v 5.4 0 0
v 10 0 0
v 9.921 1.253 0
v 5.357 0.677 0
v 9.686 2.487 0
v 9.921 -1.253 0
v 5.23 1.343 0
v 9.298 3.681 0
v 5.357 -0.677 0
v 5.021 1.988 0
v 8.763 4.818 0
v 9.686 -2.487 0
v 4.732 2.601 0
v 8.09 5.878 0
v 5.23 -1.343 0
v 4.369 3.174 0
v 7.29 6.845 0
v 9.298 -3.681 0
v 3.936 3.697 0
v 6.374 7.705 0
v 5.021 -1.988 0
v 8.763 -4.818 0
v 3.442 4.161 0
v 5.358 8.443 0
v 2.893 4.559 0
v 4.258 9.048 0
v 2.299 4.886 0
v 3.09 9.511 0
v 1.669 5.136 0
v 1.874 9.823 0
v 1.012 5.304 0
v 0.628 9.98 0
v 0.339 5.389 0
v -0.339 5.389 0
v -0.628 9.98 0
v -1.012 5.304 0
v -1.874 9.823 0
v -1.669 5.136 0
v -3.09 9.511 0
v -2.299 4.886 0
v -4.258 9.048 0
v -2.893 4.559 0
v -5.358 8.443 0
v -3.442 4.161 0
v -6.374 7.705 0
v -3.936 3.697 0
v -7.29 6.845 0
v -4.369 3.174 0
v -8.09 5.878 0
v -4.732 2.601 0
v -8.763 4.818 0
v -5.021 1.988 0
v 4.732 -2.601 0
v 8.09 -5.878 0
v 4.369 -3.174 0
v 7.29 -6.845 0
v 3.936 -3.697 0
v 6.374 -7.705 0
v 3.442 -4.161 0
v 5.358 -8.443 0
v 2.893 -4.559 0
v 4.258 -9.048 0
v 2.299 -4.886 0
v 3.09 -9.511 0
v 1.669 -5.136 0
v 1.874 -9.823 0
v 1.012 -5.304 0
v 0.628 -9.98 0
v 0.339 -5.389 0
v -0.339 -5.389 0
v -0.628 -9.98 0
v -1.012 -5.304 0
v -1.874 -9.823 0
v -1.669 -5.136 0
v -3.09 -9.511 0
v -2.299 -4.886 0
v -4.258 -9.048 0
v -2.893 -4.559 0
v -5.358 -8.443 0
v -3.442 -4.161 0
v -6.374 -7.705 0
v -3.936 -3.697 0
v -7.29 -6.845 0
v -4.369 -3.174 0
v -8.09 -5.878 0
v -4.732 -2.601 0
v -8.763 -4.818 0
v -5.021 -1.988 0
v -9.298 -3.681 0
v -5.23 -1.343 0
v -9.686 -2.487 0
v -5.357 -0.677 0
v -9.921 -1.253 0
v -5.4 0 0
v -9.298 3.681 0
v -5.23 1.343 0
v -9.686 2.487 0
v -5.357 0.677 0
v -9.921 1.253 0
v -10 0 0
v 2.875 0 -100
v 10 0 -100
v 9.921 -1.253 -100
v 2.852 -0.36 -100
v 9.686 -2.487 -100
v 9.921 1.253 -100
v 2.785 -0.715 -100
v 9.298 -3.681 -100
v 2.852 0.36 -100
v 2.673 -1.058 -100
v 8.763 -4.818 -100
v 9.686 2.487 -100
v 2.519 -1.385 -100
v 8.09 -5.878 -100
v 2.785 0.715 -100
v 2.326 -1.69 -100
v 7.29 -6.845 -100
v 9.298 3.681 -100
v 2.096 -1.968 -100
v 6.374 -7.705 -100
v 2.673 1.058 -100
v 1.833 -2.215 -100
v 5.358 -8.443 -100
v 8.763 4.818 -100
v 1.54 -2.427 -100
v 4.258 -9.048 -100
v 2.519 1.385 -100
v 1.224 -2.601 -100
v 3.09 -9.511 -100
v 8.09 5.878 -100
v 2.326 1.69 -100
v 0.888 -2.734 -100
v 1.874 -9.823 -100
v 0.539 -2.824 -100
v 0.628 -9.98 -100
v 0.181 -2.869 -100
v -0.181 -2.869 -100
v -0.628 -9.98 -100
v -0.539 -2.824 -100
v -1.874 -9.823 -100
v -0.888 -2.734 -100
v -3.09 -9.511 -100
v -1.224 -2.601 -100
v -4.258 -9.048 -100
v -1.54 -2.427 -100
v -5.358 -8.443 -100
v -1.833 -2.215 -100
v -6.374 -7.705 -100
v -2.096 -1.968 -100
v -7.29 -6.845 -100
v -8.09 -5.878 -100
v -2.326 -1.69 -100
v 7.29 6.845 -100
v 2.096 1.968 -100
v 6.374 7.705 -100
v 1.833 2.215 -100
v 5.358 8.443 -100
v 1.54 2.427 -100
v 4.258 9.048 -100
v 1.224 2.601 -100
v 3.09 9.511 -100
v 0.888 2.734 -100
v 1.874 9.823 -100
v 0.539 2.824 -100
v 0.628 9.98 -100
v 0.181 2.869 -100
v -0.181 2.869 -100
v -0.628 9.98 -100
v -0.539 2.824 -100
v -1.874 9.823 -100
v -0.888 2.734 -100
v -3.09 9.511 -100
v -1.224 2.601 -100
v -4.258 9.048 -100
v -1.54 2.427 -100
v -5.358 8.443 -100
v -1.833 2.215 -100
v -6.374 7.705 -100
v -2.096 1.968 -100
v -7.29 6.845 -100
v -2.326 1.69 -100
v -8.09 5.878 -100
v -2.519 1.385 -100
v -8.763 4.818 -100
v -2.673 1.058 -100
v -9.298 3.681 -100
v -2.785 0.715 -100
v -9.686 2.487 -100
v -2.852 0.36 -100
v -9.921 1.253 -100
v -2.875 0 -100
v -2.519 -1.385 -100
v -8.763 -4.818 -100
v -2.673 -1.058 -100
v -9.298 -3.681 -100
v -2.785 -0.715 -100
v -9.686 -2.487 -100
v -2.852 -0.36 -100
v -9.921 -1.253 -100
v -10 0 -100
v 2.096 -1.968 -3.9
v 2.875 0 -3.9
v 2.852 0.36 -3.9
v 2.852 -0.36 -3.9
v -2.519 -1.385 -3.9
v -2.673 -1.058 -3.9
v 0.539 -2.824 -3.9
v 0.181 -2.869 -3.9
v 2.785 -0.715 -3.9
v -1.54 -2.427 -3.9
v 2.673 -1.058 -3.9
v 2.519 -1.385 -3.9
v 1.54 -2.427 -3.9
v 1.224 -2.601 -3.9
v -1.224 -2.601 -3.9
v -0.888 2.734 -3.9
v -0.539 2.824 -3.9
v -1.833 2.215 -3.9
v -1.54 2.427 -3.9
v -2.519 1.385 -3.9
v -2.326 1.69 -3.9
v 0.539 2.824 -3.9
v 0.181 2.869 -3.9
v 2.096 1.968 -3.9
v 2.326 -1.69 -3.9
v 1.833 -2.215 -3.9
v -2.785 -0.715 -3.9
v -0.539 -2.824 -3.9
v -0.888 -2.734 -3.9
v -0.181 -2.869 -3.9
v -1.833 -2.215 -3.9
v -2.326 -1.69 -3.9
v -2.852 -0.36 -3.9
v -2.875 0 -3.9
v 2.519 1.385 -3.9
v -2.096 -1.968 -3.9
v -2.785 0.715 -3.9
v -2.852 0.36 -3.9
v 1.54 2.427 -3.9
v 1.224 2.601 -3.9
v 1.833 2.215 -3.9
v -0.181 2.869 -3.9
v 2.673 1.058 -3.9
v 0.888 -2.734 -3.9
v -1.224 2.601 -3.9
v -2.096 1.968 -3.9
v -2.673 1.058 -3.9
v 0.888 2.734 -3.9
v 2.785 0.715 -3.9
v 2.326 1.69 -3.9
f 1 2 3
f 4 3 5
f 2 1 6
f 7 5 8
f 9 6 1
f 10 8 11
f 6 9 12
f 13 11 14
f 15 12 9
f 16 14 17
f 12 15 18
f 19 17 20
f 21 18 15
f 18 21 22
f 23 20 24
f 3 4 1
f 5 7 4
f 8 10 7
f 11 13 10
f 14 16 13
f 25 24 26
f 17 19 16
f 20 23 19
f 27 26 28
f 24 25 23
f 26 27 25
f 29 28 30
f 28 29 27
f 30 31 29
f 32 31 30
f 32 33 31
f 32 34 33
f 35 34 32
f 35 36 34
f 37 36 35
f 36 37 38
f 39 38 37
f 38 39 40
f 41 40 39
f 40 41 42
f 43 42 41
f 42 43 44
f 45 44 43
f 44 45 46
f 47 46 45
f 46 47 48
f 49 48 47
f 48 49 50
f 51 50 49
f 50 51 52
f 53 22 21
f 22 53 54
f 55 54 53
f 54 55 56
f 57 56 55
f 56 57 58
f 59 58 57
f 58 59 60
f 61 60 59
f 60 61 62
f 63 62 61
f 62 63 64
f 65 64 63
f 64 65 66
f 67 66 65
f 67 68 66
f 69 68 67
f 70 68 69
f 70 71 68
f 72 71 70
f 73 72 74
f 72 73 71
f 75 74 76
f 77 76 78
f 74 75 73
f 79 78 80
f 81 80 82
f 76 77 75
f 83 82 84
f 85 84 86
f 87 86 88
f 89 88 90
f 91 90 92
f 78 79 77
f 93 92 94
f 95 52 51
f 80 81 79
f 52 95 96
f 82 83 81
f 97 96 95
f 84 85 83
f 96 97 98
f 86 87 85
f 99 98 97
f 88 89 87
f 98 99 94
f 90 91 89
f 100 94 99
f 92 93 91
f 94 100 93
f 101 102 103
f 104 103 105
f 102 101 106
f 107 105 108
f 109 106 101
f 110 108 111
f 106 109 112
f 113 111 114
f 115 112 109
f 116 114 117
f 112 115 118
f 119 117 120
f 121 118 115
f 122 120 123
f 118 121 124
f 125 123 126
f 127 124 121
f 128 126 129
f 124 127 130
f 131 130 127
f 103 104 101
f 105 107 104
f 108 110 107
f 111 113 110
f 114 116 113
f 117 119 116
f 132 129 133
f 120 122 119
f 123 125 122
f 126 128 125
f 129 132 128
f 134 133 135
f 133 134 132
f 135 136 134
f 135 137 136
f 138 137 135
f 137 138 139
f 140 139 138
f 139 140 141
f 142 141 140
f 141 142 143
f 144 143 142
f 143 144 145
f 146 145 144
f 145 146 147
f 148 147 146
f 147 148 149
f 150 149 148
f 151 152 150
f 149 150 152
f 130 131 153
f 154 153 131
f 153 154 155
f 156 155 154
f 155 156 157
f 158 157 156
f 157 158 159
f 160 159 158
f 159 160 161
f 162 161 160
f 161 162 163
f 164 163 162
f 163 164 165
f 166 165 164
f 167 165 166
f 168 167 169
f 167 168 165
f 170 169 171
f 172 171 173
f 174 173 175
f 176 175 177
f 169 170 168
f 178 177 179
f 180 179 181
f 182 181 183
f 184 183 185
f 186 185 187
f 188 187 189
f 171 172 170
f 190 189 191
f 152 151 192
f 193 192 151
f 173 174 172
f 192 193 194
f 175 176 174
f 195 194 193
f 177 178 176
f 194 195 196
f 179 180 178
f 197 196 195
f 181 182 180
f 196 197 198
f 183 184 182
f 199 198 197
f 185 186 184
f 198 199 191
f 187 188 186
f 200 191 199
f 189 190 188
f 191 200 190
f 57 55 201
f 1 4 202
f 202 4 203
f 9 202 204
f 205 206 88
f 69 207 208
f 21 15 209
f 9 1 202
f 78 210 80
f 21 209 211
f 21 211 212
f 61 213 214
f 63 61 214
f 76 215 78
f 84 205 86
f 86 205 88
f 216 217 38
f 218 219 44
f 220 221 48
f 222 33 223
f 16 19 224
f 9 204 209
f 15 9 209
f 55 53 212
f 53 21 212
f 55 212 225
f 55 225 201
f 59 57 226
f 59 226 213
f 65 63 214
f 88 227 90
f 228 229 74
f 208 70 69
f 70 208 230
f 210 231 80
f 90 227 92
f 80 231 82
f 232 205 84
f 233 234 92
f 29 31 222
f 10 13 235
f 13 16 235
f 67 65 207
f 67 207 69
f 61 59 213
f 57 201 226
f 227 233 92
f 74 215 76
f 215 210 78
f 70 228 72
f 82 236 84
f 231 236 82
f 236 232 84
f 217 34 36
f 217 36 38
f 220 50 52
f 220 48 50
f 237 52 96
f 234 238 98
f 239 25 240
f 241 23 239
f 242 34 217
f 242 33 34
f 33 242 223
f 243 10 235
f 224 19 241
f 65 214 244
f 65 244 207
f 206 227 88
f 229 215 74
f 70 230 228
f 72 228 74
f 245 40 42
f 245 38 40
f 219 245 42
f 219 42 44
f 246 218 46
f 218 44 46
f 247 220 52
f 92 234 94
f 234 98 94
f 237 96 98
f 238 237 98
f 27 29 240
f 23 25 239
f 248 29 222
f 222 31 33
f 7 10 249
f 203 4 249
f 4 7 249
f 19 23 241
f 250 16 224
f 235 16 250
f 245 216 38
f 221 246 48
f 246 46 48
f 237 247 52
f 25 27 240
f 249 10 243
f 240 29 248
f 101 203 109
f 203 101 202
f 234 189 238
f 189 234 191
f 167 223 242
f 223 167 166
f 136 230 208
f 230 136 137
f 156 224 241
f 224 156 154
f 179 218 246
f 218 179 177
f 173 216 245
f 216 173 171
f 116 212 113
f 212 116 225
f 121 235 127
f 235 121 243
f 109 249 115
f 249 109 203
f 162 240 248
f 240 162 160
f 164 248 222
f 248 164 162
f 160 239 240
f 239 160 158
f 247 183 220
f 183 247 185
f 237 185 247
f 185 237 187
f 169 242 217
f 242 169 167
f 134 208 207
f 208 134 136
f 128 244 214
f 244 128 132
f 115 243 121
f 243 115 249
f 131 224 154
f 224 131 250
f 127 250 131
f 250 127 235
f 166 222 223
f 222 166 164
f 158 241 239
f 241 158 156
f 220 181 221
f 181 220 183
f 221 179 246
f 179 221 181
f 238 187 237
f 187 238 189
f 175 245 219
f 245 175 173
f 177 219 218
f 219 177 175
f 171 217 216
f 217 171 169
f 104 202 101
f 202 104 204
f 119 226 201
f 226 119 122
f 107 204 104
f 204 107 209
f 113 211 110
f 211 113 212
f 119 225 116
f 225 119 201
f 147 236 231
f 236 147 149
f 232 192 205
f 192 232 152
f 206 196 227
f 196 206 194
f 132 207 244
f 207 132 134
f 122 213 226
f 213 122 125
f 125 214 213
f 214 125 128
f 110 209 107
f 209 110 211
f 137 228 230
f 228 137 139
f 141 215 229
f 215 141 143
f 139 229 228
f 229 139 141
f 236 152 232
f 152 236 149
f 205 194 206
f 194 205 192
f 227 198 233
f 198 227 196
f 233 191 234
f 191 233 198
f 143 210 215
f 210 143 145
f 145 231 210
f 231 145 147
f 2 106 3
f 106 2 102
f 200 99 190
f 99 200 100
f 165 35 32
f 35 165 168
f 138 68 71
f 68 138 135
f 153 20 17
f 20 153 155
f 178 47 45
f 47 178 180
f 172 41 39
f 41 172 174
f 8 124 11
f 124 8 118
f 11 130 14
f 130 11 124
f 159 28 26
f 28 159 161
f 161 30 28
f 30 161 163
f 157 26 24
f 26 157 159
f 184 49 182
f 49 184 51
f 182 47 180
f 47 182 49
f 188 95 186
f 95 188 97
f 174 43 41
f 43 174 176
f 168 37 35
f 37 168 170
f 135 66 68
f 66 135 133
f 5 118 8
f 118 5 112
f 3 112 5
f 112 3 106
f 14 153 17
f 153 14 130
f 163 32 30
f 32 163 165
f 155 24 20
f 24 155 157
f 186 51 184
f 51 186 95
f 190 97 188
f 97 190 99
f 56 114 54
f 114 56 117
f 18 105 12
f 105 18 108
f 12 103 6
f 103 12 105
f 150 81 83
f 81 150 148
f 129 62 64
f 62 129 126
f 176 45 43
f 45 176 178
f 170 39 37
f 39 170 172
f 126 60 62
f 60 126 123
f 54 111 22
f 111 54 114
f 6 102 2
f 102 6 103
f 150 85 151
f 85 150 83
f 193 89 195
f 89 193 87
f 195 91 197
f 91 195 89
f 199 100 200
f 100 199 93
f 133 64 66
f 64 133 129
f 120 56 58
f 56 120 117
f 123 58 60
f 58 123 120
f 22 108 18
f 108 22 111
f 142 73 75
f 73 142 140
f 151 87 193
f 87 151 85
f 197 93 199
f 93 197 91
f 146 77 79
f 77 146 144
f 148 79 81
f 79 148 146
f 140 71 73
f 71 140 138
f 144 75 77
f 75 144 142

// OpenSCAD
$fn = 50;


difference() {
	union() {
		translate(v = [0, 0, -100.0000000000]) {
			cylinder(h = 100, r = 10.0000000000);
		}
		cylinder(h = 0, r = 13.0000000000);
	}
	union() {
		translate(v = [0, 0, 0]) {
			rotate(a = [0, 0, 0]) {
				difference() {
					union() {
						#translate(v = [0, 0, -100.0000000000]) {
							cylinder(h = 100, r = 2.6000000000);
						}
						#translate(v = [0, 0, -3.9000000000]) {
							cylinder(h = 3.9000000000, r1 = 2.8750000000, r2 = 5.4000000000);
						}
						#translate(v = [0, 0, -100.0000000000]) {
							cylinder(h = 100, r = 2.8750000000);
						}
						#translate(v = [0, 0, -100.0000000000]) {
							cylinder(h = 100, r = 2.6000000000);
						}
					}
					union();
				}
			}
		}
	}
}
